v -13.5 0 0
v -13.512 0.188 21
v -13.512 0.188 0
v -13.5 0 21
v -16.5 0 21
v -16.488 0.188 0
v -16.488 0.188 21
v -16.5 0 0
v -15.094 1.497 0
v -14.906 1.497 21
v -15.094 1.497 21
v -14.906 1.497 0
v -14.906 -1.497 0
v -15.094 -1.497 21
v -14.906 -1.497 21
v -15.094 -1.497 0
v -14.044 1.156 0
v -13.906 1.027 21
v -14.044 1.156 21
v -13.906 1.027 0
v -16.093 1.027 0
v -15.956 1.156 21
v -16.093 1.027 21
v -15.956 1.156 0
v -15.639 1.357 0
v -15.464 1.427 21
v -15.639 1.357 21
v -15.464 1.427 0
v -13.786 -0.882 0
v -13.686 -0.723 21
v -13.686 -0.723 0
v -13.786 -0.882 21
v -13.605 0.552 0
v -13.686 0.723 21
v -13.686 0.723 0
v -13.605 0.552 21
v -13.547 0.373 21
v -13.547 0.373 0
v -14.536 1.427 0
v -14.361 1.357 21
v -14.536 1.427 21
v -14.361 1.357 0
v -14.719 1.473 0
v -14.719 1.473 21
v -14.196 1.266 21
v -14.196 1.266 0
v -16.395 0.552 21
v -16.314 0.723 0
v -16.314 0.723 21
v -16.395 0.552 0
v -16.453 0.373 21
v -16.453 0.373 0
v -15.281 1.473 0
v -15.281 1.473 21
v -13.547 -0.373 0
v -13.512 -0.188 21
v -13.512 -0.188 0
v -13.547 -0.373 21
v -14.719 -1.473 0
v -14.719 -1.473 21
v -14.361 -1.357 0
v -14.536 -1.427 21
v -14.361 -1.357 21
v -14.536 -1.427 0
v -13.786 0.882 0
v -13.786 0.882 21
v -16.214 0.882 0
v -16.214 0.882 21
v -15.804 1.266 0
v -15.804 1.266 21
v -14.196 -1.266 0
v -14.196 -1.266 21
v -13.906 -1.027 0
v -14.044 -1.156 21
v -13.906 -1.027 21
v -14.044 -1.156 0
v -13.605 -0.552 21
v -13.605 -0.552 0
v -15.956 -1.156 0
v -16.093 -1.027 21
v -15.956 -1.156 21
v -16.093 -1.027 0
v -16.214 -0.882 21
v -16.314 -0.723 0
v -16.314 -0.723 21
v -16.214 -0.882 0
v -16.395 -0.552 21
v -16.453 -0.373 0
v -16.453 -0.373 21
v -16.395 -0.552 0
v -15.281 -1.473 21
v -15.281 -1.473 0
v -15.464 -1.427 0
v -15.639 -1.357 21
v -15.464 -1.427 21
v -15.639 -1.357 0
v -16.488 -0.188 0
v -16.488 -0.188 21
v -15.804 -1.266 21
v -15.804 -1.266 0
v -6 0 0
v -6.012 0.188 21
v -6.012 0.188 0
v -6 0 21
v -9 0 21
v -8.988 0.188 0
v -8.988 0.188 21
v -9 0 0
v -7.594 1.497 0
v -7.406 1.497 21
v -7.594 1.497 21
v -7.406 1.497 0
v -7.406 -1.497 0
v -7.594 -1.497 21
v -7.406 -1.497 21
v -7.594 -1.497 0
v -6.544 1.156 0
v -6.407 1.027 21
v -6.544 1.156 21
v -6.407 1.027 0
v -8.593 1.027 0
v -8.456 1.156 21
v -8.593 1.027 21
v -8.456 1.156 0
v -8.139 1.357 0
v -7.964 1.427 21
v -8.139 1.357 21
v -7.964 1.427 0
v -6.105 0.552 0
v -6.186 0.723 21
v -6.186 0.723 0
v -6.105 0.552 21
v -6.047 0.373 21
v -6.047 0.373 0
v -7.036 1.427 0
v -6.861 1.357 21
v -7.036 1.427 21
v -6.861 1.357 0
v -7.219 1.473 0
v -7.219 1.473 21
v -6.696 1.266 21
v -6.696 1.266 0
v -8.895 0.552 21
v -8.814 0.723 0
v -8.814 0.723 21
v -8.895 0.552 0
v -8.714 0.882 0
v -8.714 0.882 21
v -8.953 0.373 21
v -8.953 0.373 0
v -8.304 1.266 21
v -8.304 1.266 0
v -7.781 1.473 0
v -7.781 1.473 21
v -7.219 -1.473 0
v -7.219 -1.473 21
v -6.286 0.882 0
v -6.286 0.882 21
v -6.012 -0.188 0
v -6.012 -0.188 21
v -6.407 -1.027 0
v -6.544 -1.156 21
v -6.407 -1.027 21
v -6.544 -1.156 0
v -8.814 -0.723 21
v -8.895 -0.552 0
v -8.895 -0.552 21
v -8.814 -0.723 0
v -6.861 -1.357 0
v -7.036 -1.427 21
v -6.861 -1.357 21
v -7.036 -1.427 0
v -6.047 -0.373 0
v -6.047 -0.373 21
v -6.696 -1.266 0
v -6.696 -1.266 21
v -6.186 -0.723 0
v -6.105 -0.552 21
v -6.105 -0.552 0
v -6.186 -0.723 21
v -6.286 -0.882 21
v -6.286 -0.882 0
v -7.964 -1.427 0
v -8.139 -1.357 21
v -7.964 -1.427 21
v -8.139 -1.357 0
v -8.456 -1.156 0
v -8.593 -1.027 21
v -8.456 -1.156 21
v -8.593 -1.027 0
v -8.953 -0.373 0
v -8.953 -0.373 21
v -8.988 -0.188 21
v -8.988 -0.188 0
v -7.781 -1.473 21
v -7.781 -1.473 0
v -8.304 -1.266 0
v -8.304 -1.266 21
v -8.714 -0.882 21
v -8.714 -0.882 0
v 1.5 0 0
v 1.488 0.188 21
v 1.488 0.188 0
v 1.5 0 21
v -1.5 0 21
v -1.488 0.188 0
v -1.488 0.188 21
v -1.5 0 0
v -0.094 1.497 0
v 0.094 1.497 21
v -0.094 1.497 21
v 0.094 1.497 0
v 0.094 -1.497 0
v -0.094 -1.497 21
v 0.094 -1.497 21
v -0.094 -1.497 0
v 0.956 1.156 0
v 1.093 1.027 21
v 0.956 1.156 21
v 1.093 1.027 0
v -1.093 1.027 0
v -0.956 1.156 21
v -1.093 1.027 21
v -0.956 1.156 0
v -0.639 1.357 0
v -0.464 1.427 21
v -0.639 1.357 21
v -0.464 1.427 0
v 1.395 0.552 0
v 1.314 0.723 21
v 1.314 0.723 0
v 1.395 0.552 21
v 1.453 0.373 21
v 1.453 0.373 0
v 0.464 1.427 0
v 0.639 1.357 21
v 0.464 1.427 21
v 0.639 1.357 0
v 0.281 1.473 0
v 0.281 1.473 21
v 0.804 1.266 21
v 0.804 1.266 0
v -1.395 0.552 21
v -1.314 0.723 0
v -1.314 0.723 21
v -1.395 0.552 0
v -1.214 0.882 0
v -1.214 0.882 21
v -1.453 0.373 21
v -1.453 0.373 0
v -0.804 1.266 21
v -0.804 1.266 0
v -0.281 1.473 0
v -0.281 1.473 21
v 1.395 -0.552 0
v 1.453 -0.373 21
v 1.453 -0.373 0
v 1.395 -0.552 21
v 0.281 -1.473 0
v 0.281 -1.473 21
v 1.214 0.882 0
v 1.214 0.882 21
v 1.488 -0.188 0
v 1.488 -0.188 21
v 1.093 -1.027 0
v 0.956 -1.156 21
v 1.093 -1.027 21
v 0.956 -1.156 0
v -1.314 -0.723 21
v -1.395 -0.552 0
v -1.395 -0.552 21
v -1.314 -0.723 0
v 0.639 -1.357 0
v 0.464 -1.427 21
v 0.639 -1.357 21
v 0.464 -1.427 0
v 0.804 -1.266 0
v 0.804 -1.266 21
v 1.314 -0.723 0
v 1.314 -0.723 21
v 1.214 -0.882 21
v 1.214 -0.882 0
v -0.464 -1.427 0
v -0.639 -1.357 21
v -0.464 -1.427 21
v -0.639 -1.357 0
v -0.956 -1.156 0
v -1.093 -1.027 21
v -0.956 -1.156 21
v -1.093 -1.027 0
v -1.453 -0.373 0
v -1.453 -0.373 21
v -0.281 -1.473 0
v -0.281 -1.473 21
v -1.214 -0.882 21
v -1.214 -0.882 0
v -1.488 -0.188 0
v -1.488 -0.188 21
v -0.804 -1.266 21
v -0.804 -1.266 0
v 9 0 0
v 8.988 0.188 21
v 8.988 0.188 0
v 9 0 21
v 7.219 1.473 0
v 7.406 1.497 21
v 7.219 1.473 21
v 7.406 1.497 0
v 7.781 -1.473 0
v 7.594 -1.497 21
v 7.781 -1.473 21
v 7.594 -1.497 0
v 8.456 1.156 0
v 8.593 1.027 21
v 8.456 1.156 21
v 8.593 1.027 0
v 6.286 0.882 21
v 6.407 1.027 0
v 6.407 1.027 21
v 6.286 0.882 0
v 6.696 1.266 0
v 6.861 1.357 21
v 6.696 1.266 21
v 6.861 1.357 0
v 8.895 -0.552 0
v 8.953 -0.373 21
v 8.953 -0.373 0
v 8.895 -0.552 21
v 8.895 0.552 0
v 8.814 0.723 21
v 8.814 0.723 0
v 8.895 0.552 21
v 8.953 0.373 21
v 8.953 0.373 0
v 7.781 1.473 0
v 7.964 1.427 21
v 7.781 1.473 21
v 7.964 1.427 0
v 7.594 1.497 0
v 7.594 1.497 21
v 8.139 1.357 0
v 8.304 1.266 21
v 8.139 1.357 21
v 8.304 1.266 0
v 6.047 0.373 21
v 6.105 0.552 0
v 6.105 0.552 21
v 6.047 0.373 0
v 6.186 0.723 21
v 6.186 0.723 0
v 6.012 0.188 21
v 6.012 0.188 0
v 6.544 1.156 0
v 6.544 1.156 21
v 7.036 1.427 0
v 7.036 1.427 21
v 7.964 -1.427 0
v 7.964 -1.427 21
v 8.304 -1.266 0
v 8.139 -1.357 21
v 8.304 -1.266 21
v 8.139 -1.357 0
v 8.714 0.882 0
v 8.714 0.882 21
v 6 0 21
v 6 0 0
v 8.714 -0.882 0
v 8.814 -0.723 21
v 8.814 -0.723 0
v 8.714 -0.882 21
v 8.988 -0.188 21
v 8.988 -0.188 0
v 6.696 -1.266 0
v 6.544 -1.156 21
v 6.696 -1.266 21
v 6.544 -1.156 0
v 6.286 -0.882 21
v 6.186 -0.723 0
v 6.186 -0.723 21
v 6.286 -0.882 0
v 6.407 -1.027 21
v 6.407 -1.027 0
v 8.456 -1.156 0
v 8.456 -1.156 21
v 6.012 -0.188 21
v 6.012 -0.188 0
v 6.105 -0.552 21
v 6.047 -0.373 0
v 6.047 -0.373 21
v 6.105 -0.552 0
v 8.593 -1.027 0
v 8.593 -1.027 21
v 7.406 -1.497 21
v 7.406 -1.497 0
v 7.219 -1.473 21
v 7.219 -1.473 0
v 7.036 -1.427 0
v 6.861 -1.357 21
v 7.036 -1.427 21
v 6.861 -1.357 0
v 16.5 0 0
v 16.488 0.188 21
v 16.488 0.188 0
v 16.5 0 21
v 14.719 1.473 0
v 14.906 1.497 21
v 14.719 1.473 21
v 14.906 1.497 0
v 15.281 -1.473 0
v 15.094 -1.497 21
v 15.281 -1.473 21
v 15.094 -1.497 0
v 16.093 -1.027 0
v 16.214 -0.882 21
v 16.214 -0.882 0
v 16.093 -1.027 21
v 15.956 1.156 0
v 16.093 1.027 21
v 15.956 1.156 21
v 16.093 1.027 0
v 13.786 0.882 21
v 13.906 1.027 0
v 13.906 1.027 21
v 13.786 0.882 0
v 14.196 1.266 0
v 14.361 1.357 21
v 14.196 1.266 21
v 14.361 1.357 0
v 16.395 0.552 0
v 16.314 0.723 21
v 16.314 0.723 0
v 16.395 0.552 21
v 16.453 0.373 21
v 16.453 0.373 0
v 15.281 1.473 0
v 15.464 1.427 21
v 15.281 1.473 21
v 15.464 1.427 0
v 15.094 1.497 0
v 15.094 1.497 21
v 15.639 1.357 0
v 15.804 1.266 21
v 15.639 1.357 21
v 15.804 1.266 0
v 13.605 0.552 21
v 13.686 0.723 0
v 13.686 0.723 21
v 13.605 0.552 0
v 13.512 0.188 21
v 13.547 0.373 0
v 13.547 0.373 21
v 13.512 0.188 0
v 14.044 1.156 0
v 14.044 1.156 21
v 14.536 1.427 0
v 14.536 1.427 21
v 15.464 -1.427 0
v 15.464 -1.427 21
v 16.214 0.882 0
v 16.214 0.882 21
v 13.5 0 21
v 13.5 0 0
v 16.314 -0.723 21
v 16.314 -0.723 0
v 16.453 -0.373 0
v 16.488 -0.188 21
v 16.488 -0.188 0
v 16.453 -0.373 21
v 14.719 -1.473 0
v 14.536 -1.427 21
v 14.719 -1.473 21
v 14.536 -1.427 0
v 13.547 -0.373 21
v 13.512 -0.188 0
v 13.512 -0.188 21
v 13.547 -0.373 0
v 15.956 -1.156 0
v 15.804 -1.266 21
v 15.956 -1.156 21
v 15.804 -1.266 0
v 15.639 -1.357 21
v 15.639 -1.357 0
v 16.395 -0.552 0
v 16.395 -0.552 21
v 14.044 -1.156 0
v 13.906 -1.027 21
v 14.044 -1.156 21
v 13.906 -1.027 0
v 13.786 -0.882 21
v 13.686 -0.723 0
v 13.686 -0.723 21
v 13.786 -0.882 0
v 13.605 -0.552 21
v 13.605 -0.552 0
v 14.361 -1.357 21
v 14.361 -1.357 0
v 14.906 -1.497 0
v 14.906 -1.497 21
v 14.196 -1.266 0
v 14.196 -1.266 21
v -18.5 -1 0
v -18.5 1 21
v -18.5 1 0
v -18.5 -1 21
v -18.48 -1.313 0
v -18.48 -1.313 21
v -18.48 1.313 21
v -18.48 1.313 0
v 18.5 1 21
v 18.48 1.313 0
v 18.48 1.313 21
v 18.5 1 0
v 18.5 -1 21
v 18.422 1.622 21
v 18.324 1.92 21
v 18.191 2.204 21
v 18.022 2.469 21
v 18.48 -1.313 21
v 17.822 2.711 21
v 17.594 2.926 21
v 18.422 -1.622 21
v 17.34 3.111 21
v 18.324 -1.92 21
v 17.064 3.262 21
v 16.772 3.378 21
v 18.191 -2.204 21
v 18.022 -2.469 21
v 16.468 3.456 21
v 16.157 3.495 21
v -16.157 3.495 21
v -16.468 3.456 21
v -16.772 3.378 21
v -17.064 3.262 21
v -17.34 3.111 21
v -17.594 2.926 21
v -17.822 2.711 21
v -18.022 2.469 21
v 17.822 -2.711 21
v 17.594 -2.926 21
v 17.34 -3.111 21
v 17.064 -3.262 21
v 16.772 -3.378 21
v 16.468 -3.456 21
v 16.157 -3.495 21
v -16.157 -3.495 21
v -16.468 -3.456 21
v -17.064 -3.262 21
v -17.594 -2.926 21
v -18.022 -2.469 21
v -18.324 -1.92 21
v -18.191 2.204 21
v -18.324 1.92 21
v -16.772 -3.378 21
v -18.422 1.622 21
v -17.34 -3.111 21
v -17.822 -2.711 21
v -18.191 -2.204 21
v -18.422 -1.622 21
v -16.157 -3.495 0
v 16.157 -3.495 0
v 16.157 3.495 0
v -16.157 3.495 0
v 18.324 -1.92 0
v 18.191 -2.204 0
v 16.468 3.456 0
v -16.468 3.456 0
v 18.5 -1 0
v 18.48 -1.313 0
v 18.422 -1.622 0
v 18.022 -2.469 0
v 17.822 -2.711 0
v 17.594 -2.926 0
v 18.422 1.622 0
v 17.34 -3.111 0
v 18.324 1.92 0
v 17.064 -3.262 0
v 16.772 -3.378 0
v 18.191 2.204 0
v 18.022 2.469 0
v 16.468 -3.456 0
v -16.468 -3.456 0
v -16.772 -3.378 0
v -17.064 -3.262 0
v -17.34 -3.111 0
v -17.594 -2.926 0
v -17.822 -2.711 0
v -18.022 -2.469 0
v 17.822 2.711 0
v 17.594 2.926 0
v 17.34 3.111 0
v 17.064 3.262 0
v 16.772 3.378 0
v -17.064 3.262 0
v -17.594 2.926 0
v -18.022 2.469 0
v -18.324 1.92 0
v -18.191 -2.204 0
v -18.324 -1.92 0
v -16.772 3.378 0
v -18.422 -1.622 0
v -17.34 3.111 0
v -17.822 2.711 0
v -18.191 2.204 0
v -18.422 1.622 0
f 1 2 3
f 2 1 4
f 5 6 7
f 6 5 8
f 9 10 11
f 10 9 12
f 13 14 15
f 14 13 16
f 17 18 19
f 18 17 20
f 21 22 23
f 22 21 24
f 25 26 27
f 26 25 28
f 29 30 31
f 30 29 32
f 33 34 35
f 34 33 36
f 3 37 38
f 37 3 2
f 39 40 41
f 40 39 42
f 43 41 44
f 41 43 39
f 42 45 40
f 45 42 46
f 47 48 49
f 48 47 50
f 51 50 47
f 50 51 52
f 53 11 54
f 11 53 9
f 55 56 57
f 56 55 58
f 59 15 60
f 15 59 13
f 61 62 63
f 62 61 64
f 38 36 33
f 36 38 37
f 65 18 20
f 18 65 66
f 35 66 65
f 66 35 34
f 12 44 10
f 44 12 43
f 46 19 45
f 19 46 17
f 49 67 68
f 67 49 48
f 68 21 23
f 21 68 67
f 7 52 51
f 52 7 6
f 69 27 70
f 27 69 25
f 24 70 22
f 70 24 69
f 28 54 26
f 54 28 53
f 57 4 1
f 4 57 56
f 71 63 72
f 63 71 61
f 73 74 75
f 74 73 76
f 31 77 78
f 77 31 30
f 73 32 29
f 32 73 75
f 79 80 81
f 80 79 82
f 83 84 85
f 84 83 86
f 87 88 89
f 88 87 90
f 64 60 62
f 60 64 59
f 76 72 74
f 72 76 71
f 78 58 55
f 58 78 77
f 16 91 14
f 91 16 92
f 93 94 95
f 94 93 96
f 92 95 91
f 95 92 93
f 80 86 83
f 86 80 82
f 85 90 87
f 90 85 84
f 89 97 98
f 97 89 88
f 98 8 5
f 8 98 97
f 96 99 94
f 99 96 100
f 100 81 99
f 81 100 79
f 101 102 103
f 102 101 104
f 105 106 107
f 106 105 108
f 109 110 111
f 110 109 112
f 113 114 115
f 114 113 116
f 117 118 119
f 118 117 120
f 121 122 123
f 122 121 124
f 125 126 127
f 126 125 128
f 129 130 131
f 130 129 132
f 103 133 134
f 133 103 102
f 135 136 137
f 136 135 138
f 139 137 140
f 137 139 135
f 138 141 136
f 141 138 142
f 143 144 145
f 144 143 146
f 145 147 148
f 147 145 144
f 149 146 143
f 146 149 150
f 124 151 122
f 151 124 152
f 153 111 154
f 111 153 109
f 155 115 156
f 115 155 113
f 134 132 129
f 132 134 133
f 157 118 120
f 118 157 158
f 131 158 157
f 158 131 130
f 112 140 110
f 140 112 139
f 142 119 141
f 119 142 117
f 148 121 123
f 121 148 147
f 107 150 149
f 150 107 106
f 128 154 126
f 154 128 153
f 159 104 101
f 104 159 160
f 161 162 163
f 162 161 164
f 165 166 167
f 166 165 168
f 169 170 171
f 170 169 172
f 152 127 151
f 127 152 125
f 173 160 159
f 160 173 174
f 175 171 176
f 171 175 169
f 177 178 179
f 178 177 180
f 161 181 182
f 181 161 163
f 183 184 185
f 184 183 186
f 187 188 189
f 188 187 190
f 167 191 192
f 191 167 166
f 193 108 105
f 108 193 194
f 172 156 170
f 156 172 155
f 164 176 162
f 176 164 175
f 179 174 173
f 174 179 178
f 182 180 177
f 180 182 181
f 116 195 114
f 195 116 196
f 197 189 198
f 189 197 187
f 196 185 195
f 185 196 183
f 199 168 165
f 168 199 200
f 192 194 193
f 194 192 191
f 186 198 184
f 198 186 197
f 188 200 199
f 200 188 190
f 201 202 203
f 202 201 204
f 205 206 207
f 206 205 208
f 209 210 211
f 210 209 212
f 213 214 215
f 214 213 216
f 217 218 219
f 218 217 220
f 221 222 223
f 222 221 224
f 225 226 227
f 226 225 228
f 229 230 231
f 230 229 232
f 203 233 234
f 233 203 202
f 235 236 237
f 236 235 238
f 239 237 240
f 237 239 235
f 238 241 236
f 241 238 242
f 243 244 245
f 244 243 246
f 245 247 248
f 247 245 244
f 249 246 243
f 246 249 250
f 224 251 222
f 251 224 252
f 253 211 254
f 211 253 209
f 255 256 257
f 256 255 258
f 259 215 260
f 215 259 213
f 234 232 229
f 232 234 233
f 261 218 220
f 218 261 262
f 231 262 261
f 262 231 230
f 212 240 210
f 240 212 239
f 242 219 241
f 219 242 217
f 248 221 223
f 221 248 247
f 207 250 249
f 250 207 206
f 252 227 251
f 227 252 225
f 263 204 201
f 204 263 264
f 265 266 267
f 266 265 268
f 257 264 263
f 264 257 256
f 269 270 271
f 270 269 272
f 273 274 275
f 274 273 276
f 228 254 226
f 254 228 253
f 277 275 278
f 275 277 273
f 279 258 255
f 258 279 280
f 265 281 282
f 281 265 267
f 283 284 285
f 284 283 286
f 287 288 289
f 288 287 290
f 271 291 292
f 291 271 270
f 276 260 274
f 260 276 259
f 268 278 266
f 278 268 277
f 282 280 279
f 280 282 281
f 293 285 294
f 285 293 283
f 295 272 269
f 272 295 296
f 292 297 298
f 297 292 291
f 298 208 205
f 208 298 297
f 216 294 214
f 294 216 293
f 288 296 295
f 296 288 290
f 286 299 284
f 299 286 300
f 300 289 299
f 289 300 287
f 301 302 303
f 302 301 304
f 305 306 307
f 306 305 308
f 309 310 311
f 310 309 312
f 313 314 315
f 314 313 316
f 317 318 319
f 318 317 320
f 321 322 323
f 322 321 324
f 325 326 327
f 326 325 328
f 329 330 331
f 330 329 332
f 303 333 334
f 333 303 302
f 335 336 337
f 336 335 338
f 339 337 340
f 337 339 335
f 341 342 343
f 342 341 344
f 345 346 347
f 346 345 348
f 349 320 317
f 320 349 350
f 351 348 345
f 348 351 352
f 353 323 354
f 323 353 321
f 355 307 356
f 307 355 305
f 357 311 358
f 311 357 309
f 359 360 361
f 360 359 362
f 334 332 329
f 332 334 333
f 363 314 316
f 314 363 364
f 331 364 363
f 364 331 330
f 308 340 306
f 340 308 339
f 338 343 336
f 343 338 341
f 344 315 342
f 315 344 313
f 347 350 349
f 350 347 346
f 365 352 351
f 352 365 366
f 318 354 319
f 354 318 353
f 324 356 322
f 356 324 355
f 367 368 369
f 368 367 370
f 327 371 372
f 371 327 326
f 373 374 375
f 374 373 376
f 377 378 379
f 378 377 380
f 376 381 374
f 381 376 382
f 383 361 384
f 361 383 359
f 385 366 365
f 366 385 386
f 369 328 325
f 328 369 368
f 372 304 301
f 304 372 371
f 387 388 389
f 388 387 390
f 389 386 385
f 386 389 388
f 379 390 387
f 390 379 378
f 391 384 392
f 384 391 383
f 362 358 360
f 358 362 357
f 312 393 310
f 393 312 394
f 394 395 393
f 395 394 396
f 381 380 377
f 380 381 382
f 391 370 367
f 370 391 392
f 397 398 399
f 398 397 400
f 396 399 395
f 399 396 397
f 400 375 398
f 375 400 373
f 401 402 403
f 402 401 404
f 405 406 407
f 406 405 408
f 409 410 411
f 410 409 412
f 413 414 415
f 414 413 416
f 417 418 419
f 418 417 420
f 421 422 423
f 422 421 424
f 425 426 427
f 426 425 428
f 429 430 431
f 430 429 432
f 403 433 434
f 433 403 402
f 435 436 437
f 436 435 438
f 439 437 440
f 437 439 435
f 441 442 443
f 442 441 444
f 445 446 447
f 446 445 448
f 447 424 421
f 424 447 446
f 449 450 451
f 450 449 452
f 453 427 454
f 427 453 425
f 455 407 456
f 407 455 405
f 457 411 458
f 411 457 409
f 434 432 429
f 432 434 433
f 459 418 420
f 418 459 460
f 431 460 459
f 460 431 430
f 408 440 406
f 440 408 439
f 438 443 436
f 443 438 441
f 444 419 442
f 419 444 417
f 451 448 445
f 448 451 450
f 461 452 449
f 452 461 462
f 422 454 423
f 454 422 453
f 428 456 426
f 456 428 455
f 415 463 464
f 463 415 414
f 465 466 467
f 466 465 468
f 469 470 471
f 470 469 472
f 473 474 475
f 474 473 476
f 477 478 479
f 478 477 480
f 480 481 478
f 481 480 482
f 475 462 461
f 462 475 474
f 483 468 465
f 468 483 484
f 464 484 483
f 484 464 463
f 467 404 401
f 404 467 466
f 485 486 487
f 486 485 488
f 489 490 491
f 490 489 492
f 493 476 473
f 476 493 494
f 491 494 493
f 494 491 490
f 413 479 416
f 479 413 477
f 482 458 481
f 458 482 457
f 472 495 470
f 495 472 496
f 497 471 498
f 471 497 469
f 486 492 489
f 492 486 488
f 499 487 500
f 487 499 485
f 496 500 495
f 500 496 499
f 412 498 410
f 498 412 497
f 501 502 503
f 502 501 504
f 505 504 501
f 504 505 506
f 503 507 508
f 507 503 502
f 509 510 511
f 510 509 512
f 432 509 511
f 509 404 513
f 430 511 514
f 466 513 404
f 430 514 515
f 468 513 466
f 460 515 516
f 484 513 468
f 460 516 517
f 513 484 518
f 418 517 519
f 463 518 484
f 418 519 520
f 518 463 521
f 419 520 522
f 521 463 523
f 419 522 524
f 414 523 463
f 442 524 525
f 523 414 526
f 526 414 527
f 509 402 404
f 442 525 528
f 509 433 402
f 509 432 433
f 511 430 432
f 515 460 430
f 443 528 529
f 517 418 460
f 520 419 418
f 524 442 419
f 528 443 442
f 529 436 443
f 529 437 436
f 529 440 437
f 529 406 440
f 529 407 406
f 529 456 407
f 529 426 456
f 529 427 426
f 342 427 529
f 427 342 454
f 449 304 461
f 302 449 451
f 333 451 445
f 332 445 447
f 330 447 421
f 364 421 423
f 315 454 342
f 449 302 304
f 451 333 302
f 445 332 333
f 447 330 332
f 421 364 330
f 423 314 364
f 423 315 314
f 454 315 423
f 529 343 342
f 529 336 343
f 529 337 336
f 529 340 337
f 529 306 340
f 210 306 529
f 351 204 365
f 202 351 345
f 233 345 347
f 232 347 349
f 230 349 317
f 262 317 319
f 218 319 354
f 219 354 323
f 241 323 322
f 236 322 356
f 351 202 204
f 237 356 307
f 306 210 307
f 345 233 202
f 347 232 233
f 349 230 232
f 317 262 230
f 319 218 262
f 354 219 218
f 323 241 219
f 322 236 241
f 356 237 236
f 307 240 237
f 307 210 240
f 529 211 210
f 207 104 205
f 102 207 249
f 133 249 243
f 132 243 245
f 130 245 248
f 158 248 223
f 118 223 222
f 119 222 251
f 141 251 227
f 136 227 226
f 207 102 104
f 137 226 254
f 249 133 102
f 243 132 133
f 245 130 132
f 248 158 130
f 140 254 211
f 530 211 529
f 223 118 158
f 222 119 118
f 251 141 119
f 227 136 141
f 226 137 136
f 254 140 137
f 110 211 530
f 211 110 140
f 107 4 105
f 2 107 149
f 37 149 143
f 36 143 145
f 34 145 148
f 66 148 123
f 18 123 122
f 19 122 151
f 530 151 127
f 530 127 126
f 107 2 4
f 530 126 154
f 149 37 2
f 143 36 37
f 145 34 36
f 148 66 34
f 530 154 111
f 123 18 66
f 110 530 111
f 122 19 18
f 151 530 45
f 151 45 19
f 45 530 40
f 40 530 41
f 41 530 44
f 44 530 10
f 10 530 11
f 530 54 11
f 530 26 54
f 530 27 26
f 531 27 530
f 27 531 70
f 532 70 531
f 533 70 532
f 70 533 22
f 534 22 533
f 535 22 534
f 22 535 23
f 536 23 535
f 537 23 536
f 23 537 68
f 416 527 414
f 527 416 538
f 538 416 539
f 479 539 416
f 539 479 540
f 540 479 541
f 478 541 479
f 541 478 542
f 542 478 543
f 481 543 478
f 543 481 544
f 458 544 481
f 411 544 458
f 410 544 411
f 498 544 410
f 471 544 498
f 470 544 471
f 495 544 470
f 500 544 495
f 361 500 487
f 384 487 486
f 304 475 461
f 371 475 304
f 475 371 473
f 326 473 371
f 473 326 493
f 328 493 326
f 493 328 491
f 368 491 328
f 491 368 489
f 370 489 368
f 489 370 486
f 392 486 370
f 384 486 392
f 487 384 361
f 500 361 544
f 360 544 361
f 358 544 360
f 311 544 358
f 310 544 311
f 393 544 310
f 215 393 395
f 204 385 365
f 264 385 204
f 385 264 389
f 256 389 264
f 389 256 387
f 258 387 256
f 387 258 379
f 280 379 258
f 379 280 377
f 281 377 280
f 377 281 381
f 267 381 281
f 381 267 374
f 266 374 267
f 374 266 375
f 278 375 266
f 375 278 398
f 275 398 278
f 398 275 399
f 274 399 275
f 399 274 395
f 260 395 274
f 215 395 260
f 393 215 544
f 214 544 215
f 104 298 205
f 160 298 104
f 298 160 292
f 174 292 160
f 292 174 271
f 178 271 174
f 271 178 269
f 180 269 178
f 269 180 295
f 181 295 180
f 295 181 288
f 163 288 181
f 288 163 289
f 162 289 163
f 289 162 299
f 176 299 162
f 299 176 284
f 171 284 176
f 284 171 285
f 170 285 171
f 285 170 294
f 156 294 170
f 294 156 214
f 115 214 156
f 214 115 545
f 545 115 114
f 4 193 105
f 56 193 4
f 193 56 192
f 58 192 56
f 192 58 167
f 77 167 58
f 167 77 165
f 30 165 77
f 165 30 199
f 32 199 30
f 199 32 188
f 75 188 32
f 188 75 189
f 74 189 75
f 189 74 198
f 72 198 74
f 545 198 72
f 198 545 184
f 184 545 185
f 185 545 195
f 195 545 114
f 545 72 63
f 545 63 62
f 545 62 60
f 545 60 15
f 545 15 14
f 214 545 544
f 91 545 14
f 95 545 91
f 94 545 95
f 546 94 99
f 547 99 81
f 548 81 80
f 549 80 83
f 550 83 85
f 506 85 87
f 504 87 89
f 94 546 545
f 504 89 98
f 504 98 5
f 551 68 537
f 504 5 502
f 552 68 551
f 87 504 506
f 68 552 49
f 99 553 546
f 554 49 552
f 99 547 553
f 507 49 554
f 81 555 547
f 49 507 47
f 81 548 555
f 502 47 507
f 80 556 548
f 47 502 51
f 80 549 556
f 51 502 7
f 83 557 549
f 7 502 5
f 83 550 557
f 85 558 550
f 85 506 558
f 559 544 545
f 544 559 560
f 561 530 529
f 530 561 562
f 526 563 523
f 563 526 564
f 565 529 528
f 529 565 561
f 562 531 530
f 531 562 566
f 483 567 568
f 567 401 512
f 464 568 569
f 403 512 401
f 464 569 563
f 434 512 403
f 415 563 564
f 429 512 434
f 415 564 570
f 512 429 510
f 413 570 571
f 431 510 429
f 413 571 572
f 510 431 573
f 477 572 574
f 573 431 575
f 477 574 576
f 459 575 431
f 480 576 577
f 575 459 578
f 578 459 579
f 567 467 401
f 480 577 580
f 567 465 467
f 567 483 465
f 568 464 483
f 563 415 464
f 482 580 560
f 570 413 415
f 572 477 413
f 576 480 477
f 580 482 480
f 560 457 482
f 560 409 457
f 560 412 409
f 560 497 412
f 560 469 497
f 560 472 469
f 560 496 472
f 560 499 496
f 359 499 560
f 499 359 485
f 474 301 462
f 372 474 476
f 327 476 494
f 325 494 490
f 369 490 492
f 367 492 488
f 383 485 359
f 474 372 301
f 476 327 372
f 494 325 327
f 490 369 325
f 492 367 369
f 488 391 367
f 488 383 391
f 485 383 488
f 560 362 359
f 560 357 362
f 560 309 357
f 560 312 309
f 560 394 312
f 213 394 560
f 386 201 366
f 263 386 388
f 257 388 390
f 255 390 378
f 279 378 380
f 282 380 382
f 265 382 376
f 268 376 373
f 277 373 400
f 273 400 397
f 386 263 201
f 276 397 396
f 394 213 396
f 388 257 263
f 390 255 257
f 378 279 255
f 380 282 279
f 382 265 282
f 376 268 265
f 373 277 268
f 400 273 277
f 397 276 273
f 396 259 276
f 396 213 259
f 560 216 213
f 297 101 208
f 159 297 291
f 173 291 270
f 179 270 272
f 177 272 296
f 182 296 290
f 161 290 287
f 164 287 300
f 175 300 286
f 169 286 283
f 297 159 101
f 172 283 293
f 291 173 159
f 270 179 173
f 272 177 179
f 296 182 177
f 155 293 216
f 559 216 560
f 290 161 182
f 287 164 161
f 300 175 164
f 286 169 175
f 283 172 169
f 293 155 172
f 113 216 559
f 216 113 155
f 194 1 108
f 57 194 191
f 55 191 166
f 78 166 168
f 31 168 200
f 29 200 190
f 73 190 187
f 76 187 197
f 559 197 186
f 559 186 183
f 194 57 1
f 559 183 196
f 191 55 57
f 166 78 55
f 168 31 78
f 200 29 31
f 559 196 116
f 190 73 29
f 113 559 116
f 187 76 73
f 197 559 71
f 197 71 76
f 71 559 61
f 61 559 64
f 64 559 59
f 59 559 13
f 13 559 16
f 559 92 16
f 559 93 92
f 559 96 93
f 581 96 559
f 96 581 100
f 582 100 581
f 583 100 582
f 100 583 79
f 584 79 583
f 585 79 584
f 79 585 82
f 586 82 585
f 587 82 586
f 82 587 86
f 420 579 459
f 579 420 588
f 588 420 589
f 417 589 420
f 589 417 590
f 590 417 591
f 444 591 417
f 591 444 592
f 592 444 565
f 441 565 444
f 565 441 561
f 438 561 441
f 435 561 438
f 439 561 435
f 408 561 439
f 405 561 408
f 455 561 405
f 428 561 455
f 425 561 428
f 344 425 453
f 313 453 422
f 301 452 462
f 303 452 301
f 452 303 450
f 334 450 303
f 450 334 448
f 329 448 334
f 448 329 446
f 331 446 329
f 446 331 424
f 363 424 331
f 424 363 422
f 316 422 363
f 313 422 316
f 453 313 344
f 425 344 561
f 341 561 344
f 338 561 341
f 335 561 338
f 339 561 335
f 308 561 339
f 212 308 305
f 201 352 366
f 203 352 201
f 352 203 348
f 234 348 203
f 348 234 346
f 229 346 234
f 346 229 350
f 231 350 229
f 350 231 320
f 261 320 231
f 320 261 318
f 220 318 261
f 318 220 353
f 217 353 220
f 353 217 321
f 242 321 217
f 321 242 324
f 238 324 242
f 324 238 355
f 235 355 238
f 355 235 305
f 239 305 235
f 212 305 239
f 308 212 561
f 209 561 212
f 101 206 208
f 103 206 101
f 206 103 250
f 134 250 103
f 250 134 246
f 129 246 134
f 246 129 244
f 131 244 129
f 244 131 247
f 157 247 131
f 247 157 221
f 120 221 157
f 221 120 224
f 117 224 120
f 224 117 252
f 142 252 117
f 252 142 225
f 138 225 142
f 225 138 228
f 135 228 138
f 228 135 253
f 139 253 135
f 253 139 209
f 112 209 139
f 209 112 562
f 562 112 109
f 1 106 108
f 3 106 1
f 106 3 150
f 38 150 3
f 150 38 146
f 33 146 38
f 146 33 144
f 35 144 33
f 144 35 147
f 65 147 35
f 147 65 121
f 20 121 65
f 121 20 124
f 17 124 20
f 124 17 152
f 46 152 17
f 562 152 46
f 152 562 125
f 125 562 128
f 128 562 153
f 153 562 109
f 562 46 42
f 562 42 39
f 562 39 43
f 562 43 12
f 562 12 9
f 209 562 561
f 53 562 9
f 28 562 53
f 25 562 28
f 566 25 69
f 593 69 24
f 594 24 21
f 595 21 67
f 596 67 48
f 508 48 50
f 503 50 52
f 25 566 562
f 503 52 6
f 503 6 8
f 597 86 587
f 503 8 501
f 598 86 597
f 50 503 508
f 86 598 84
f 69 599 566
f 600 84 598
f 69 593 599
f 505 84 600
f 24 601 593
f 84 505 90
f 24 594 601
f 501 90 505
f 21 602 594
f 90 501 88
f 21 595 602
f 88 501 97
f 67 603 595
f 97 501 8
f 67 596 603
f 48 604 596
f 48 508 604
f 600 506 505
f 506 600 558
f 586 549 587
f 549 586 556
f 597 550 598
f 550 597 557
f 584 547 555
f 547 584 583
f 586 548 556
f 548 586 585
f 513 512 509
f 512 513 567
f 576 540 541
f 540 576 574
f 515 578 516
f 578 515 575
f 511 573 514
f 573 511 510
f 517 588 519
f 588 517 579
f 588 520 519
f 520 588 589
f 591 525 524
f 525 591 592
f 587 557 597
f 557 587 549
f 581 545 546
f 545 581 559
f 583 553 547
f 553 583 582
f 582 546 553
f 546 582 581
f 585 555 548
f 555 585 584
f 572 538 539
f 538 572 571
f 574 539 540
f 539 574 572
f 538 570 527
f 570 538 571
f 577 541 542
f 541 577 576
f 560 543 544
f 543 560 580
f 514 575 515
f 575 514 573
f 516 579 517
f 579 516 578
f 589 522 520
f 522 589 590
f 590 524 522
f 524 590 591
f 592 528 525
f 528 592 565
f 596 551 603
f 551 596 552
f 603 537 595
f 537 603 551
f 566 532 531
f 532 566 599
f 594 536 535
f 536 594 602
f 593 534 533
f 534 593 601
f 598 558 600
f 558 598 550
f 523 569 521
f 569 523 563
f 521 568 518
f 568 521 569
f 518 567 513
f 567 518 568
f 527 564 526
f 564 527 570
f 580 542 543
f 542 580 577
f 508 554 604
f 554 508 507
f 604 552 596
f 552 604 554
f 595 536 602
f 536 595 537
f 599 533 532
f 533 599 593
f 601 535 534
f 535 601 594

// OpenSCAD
$fn = 50;


difference() {
	union() {
		translate(v = [0, 0, 0]) {
			rotate(a = [0, 0, 0]) {
				hull() {
					translate(v = [-16.0000000000, 1.0000000000, 0]) {
						rotate(a = [0, 0, 0]) {
							translate(v = [0, 0, 0]) {
								rotate(a = [0, 0, 0]) {
									cylinder(h = 21, r = 2.5000000000);
								}
							}
						}
					}
					translate(v = [16.0000000000, 1.0000000000, 0]) {
						rotate(a = [0, 0, 0]) {
							translate(v = [0, 0, 0]) {
								rotate(a = [0, 0, 0]) {
									cylinder(h = 21, r = 2.5000000000);
								}
							}
						}
					}
					translate(v = [-16.0000000000, -1.0000000000, 0]) {
						rotate(a = [0, 0, 0]) {
							translate(v = [0, 0, 0]) {
								rotate(a = [0, 0, 0]) {
									cylinder(h = 21, r = 2.5000000000);
								}
							}
						}
					}
					translate(v = [16.0000000000, -1.0000000000, 0]) {
						rotate(a = [0, 0, 0]) {
							translate(v = [0, 0, 0]) {
								rotate(a = [0, 0, 0]) {
									cylinder(h = 21, r = 2.5000000000);
								}
							}
						}
					}
				}
			}
		}
	}
	union() {
		translate(v = [-15.0000000000, 0.0000000000, 0]) {
			rotate(a = [0, 0, 0]) {
				translate(v = [0, 0, -50]) {
					rotate(a = [0, 0, 0]) {
						cylinder(h = 100, r = 1.5000000000);
					}
				}
			}
		}
		translate(v = [-7.5000000000, 0.0000000000, 0]) {
			rotate(a = [0, 0, 0]) {
				translate(v = [0, 0, -50]) {
					rotate(a = [0, 0, 0]) {
						cylinder(h = 100, r = 1.5000000000);
					}
				}
			}
		}
		translate(v = [0.0000000000, 0.0000000000, 0]) {
			rotate(a = [0, 0, 0]) {
				translate(v = [0, 0, -50]) {
					rotate(a = [0, 0, 0]) {
						cylinder(h = 100, r = 1.5000000000);
					}
				}
			}
		}
		translate(v = [7.5000000000, 0.0000000000, 0]) {
			rotate(a = [0, 0, 0]) {
				translate(v = [0, 0, -50]) {
					rotate(a = [0, 0, 0]) {
						cylinder(h = 100, r = 1.5000000000);
					}
				}
			}
		}
		translate(v = [15.0000000000, 0.0000000000, 0]) {
			rotate(a = [0, 0, 0]) {
				translate(v = [0, 0, -50]) {
					rotate(a = [0, 0, 0]) {
						cylinder(h = 100, r = 1.5000000000);
					}
				}
			}
		}
	}
}
